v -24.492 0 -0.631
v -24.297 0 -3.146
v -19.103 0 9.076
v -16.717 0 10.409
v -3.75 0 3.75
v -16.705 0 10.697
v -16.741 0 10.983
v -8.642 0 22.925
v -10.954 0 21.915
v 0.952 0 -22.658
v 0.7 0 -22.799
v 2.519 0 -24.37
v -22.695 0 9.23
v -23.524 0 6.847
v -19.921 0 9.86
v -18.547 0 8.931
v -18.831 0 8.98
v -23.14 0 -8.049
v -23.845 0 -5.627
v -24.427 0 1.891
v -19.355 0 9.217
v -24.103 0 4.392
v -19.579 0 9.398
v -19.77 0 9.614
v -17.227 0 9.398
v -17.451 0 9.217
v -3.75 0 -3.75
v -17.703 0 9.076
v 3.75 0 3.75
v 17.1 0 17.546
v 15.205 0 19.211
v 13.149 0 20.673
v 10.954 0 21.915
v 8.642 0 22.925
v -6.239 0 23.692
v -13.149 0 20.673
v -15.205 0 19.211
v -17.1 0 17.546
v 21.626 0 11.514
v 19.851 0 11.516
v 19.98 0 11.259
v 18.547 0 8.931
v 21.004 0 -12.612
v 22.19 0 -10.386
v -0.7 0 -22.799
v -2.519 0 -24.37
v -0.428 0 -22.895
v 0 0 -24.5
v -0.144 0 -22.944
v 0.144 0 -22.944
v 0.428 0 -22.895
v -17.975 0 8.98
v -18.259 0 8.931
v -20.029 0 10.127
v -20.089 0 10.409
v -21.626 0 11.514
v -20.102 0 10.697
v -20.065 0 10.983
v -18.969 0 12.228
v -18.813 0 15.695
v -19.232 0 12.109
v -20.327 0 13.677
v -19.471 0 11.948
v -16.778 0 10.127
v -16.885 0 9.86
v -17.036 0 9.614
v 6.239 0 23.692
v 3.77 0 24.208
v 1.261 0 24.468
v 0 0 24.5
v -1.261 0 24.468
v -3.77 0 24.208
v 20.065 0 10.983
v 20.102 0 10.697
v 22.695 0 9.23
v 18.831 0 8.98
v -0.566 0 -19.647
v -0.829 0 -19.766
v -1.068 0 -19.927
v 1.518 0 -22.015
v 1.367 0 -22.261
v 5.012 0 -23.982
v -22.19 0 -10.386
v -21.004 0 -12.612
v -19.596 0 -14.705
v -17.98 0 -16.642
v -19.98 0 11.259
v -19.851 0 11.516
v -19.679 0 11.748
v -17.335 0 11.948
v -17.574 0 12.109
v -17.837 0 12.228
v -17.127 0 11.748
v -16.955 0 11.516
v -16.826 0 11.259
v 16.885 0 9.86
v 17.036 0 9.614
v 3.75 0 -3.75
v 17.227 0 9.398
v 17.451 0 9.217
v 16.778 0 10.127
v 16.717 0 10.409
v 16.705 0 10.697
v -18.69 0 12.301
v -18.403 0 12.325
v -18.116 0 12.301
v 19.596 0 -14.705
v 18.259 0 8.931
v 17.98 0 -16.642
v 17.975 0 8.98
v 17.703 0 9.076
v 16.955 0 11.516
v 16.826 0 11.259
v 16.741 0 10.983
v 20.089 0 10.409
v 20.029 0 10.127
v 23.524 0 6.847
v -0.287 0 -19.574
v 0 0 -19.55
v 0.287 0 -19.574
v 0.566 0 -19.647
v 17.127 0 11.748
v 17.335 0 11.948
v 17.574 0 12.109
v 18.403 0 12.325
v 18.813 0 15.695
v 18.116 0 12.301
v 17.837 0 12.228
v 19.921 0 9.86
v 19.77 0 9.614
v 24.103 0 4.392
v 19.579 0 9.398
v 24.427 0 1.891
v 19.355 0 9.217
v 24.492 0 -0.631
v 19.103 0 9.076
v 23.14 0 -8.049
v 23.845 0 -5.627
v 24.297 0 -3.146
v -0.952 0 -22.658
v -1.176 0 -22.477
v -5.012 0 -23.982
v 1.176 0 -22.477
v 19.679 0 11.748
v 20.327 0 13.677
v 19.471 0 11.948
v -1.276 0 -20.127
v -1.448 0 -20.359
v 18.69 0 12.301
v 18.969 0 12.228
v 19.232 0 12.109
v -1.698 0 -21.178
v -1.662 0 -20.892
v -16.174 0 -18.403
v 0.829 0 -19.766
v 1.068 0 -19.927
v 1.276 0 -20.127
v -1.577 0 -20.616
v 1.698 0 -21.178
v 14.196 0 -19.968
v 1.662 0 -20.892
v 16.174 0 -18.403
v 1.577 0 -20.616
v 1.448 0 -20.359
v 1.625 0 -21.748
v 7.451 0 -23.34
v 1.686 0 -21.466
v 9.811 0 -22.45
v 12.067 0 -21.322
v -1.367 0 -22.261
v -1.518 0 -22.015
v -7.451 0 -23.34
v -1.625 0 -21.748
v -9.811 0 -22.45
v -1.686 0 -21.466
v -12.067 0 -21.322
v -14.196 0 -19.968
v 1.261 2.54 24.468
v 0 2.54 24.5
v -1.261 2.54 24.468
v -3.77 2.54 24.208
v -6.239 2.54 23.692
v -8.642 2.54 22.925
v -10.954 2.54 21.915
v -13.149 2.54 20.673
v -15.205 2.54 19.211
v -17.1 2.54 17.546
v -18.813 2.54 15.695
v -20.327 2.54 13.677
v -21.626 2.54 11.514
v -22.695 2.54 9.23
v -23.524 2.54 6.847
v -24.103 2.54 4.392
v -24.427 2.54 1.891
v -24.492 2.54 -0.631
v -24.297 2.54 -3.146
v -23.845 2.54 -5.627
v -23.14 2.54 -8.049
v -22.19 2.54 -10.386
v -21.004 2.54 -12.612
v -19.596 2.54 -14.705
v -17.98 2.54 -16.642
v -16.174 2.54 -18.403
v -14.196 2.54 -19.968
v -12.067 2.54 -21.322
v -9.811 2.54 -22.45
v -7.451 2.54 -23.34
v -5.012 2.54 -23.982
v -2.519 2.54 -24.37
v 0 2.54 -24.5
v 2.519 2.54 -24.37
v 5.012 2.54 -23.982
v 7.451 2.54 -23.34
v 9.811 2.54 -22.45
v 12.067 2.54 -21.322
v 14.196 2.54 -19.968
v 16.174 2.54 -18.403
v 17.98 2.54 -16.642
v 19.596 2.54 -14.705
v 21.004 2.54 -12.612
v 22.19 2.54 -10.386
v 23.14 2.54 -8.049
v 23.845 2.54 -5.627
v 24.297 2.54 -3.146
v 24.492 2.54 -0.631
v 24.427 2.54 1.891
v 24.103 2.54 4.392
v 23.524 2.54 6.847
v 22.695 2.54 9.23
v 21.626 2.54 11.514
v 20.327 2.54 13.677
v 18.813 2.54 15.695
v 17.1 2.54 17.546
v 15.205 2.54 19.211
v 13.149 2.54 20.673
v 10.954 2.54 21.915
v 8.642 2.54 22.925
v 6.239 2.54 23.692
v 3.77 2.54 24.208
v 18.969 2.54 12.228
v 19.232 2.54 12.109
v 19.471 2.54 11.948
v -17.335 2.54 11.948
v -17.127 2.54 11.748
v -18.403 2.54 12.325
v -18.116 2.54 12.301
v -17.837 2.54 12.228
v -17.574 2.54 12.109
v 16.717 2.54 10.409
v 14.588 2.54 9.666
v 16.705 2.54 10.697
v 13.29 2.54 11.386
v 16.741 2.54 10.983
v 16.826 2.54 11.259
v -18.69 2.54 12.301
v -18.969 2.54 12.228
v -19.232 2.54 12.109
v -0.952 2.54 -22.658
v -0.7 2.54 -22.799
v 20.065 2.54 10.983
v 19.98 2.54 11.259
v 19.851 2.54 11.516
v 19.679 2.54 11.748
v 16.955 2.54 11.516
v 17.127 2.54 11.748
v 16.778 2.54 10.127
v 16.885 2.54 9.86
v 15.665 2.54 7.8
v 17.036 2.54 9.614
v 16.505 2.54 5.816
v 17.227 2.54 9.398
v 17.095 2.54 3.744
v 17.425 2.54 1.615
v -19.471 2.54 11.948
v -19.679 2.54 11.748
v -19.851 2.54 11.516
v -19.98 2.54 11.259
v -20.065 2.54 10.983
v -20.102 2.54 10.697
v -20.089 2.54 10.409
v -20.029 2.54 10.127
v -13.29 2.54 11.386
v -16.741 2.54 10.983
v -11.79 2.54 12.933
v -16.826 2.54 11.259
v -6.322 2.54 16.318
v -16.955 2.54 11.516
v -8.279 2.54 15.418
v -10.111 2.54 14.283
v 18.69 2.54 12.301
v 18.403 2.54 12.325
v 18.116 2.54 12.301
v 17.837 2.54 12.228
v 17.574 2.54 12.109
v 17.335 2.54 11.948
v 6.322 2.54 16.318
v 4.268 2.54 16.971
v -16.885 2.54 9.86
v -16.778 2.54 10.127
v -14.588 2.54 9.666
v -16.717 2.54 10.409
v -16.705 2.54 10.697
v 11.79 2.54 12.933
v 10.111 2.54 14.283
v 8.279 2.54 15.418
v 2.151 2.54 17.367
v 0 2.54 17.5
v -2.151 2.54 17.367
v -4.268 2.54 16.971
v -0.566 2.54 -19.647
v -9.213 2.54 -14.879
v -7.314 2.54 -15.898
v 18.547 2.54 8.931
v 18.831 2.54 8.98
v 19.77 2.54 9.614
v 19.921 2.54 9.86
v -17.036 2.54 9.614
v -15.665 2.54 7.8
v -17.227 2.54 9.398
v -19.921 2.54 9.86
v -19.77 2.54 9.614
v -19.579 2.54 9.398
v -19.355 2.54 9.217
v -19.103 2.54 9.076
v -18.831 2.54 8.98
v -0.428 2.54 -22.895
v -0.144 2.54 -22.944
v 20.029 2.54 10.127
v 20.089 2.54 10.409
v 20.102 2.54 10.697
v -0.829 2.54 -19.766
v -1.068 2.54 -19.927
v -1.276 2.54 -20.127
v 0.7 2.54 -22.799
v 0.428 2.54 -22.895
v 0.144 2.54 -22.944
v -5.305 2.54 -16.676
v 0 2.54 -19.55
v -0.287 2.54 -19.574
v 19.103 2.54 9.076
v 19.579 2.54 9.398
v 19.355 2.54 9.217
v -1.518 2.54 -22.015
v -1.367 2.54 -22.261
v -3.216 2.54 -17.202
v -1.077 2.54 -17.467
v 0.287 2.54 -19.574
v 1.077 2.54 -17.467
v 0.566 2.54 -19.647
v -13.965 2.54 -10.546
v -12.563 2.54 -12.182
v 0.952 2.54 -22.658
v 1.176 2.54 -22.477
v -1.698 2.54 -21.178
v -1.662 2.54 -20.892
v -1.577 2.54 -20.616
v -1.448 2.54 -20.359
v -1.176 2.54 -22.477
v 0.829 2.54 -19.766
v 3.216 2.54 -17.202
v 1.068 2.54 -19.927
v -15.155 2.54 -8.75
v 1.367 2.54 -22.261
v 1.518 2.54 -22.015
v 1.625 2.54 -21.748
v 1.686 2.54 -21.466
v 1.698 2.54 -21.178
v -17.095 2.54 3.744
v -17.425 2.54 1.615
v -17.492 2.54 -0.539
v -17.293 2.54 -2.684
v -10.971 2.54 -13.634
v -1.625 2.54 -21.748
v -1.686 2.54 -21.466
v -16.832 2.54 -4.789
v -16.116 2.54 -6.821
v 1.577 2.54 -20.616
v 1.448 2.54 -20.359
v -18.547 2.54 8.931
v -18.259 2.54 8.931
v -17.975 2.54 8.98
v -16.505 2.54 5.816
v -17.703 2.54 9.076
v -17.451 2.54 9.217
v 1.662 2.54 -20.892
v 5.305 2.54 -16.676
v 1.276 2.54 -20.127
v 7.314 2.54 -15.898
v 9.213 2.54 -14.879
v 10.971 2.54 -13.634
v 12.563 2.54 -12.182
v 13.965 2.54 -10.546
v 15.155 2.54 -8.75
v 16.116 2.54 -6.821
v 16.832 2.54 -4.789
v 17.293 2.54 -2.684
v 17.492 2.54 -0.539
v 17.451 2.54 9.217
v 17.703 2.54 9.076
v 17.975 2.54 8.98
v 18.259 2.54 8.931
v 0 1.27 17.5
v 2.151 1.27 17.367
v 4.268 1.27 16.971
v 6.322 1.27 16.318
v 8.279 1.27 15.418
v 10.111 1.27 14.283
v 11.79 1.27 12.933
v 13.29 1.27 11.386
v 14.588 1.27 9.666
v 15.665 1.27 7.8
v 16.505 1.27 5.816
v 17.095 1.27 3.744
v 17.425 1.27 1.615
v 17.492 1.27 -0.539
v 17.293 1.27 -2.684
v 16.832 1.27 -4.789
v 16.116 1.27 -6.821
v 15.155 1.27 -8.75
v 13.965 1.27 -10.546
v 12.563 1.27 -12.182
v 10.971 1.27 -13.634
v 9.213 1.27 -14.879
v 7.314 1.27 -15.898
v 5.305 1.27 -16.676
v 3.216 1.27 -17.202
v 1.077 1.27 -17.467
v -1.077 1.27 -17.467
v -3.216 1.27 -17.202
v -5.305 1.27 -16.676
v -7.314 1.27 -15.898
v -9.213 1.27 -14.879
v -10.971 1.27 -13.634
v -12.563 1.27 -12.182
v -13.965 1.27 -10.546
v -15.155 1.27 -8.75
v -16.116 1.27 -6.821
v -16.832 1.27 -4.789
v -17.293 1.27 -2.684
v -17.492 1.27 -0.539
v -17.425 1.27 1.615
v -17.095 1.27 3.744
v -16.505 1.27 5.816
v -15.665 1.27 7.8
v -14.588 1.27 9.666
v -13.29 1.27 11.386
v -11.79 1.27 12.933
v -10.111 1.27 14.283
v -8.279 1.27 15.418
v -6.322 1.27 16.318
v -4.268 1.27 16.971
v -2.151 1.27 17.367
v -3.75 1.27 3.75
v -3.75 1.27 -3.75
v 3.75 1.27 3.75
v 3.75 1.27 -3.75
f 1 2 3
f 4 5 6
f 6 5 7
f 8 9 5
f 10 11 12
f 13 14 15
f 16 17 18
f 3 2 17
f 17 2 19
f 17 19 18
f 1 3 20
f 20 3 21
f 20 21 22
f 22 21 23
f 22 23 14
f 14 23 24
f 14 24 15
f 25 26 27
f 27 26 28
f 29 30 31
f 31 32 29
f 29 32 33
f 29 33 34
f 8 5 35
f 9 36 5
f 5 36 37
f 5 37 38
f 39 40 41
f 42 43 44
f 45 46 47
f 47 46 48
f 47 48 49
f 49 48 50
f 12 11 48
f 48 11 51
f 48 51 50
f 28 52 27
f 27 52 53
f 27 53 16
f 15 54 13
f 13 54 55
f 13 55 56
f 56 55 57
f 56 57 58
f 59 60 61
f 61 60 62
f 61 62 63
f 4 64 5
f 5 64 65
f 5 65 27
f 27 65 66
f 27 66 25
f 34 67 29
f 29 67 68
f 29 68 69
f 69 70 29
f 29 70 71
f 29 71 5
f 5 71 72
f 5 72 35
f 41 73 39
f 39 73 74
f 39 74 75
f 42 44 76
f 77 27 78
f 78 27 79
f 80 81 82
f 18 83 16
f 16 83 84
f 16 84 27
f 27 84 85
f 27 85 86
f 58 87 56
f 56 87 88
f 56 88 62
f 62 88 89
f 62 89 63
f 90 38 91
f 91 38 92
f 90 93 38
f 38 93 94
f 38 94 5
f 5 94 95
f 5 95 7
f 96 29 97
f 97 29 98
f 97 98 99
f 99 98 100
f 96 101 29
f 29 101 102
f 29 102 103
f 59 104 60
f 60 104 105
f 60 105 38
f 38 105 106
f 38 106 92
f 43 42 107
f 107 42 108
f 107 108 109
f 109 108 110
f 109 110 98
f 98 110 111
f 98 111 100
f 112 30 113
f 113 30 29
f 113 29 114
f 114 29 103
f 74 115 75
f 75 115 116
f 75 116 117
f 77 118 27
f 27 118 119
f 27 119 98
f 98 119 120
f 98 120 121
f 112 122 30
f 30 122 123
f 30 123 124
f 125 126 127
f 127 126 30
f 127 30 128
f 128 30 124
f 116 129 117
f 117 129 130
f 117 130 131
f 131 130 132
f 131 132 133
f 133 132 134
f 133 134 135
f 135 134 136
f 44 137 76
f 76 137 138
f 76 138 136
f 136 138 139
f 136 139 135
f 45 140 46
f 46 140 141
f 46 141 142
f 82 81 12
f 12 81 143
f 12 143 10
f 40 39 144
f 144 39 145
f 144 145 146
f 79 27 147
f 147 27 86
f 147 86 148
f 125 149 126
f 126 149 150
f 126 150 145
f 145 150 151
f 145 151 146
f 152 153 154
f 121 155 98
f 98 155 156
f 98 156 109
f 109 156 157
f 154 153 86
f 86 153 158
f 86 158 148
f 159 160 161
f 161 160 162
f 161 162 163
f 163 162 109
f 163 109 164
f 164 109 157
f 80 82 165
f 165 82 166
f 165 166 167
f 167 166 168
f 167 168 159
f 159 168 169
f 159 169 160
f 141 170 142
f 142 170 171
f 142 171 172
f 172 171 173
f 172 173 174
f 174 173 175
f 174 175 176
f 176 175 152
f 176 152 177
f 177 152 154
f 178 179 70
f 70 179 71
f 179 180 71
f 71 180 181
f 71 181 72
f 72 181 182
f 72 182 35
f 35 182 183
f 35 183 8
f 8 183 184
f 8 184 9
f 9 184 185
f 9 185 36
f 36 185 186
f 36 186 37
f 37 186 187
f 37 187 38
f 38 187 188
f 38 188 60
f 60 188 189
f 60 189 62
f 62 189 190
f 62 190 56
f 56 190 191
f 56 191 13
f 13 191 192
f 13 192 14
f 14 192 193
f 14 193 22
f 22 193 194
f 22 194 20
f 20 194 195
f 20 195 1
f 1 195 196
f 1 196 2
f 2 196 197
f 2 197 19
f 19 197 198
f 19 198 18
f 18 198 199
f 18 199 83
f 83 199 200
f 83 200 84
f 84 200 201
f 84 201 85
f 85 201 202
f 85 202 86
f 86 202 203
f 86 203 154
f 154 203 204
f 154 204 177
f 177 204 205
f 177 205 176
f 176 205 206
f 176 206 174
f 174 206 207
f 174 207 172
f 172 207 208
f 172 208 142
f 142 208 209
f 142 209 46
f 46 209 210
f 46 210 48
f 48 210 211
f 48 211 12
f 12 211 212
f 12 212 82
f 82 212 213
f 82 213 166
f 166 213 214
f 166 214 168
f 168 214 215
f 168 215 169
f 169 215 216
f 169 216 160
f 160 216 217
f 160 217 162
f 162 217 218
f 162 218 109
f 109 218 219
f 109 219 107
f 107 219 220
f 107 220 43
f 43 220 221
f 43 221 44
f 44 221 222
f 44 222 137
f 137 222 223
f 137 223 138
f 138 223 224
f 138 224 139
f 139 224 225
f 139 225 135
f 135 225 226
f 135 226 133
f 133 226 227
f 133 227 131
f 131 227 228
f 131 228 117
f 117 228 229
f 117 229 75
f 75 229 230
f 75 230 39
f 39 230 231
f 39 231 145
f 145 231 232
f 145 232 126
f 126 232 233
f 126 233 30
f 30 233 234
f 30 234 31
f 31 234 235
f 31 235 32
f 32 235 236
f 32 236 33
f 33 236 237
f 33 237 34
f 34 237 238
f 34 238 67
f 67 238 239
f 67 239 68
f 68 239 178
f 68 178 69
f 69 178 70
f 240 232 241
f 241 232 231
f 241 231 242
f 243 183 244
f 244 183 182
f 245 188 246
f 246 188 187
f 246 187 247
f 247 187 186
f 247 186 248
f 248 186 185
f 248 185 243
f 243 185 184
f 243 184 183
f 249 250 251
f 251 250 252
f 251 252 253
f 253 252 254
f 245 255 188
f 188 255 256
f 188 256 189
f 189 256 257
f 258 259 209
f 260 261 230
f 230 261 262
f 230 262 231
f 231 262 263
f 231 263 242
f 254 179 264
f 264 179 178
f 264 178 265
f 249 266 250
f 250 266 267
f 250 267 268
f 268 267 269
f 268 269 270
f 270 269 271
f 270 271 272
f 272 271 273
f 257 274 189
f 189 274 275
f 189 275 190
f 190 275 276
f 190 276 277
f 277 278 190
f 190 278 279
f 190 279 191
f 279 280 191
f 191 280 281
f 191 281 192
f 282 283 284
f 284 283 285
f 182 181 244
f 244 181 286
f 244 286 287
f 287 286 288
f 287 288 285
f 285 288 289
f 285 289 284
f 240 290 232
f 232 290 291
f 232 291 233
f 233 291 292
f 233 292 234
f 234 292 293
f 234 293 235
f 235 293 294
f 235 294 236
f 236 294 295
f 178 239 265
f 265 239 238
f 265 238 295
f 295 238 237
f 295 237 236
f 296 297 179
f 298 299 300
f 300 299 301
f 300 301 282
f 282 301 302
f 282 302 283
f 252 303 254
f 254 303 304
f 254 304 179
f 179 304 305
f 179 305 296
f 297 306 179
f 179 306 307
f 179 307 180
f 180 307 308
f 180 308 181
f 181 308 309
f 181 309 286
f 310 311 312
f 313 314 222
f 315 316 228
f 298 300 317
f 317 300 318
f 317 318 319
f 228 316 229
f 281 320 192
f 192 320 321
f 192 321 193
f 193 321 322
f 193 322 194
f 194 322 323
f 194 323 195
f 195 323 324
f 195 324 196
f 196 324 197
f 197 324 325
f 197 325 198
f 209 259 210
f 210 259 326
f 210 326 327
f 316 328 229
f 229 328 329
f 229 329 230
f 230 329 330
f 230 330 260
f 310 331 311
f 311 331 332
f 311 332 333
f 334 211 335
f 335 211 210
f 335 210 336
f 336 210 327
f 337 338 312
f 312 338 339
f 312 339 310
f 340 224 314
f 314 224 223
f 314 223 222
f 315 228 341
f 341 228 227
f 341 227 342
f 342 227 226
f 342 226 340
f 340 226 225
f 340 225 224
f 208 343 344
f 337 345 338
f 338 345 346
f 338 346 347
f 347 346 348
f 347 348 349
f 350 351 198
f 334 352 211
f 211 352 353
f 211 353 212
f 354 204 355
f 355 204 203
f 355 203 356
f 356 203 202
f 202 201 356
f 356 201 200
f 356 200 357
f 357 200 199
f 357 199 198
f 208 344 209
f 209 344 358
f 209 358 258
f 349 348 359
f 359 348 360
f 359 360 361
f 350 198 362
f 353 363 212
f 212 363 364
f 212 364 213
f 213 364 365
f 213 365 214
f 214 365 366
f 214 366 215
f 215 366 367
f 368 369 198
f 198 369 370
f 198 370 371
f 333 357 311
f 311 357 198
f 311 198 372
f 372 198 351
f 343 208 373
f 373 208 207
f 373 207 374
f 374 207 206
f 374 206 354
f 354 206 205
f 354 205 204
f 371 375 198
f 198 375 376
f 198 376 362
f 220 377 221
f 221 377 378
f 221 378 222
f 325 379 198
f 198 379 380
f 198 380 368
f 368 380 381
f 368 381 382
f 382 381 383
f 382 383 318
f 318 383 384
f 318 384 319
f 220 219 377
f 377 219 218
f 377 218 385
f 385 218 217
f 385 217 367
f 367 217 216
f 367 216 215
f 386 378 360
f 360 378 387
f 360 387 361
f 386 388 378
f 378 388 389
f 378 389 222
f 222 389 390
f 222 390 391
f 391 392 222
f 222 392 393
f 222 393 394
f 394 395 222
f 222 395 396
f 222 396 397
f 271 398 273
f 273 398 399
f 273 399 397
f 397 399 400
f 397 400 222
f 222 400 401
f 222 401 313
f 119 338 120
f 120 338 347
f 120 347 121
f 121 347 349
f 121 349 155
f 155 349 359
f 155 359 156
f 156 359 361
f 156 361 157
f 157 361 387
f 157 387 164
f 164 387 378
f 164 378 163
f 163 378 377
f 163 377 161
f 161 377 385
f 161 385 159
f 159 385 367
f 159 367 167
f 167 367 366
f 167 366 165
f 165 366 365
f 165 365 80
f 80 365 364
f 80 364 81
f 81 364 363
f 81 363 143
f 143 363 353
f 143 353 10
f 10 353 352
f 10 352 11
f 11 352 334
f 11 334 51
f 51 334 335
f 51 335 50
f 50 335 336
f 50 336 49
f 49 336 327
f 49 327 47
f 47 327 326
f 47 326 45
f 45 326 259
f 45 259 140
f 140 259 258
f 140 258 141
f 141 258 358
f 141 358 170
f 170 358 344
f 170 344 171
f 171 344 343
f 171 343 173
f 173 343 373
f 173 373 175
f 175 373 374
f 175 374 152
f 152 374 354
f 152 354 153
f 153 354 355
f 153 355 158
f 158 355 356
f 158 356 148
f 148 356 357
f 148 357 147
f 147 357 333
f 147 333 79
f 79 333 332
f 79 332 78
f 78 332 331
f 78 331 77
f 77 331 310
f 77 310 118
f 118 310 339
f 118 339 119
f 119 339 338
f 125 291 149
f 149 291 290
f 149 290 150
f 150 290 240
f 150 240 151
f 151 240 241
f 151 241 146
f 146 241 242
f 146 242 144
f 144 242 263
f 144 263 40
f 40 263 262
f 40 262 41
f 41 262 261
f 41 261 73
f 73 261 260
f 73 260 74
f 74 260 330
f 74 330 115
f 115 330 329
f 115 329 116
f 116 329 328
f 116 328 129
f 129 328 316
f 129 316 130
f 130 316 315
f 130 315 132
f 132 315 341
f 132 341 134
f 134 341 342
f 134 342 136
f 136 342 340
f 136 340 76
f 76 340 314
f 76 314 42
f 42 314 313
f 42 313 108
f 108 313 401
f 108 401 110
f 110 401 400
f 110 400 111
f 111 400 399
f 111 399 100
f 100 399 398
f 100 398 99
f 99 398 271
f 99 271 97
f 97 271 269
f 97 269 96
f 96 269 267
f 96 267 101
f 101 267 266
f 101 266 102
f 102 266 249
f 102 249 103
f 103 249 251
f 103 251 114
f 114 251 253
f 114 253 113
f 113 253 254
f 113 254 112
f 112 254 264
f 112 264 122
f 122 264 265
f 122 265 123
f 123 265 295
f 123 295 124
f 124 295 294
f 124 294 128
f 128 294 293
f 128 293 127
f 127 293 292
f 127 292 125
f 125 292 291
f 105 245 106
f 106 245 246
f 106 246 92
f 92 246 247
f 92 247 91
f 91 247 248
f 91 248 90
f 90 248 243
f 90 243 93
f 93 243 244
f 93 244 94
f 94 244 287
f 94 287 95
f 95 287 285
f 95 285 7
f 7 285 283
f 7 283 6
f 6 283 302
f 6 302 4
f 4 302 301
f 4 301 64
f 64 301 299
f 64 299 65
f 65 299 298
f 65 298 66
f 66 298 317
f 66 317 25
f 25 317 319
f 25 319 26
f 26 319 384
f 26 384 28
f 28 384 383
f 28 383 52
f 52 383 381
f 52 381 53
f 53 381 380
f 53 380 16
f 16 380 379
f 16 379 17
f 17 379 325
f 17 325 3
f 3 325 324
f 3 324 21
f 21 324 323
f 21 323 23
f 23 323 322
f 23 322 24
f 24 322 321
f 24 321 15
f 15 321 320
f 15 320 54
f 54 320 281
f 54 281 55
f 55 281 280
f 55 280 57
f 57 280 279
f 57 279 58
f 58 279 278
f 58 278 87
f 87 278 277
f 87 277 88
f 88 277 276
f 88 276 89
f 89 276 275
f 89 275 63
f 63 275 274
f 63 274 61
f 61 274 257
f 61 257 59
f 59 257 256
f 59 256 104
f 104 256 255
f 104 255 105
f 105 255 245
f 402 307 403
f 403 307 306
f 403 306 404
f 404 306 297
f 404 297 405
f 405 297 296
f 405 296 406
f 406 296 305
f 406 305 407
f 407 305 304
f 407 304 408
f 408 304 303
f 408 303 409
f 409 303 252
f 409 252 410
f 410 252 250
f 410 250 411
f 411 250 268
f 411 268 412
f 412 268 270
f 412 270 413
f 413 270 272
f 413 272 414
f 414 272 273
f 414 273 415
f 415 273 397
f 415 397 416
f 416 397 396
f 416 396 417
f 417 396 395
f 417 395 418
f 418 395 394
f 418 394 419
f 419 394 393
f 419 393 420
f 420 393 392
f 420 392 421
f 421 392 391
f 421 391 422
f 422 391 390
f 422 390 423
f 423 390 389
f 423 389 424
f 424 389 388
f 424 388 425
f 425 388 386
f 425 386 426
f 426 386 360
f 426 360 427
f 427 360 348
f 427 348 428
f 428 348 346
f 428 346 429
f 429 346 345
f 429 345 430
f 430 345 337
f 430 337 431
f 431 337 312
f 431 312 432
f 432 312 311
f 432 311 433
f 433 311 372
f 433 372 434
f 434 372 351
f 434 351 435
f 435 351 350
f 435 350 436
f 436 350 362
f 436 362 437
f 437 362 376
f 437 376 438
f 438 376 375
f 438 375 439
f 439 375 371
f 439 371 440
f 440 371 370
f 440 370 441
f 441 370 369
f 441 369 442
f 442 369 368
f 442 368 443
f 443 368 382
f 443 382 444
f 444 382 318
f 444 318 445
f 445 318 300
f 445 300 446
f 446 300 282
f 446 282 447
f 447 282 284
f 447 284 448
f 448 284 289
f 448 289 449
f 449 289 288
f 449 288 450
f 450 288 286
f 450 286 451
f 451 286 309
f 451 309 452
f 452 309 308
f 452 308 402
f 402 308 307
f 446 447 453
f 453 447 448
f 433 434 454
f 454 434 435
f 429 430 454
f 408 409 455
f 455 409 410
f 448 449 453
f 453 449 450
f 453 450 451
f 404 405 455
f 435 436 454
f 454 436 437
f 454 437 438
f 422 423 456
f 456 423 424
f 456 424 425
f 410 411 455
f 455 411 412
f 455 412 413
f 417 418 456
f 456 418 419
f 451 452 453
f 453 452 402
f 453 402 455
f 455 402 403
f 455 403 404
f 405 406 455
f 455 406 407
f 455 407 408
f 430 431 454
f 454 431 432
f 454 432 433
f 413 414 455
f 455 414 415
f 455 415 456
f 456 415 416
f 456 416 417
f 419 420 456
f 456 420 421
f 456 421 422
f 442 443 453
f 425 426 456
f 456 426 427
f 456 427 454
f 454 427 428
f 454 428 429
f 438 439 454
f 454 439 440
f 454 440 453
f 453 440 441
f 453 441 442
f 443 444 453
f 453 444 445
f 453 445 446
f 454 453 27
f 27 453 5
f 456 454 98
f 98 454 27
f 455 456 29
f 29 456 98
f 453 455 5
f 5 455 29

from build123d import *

# Parameters (mm, degrees)
SKETCH1_R            = 24.5
BOSS_EXTRUDE1_DEPTH  = 2.54
M3_CLEARANCE_HOLE1_D = 3.4
SKETCH4_R            = 17.5
CUT_EXTRUDE1_DEPTH   = 1.27
SKETCH5_W            = 7.5
SKETCH5_H            = 7.5
CUT_EXTRUDE2_DEPTH   = 1.27


with BuildPart() as part:
    # Sketch1 → Boss-Extrude1 (new body)
    with BuildSketch(Plane(origin=(0, 0, 0), x_dir=(1, 0, 0), z_dir=(0, 1, 0))):
        with Locations(Location((0, 0, 0), (0, 0, 270))):
            Circle(SKETCH1_R)
    extrude(amount=BOSS_EXTRUDE1_DEPTH)

    # M3 Clearance Hole1 (through all)
    with Locations(Plane(origin=(-18.40303983, 2.54, 10.625), x_dir=(0, 0, 1), z_dir=(0, 1, 0))):
        with Locations((0, 0), (0, 36.80607966), (-31.875, 18.40303983)):
            Hole(M3_CLEARANCE_HOLE1_D / 2)

    # Sketch4 → Cut-Extrude1 (cut)
    with BuildSketch(Plane(origin=(0, 2.54, 0), x_dir=(1, 0, 0), z_dir=(0, 1, 0))):
        with Locations(Location((0, 0, 0), (0, 0, 270))):
            Circle(SKETCH4_R)
    extrude(amount=-CUT_EXTRUDE1_DEPTH, mode=Mode.SUBTRACT)

    # Sketch5 → Cut-Extrude2 (cut)
    with BuildSketch(Plane(origin=(0, 1.27, 0), x_dir=(1, 0, 0), z_dir=(0, 1, 0))):
        Rectangle(SKETCH5_W, SKETCH5_H)
    extrude(amount=-CUT_EXTRUDE2_DEPTH, mode=Mode.SUBTRACT)


solid = part.part
